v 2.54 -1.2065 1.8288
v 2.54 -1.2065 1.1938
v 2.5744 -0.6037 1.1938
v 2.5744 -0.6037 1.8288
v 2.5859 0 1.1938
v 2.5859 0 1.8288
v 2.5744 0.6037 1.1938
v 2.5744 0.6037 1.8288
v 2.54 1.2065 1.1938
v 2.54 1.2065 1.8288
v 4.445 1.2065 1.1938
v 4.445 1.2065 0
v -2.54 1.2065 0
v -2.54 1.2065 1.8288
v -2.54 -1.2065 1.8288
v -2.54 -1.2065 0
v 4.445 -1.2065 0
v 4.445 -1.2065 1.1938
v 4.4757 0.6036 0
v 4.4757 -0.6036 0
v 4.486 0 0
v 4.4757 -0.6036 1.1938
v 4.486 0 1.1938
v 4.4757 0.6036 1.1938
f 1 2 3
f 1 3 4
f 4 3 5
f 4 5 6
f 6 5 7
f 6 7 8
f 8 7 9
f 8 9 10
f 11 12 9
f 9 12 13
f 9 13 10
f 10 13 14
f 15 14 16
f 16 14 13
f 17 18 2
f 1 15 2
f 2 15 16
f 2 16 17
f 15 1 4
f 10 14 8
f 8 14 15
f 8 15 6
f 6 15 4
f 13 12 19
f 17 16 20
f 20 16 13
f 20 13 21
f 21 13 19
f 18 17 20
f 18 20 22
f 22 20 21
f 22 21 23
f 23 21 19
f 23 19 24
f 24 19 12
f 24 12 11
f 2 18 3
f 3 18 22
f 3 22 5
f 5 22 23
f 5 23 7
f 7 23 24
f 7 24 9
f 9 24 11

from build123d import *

# Parameters (mm, degrees)
BOSS_EXTRUDE1_DEPTH = 1.8288
BOSS_EXTRUDE2_DEPTH = 1.1938


with BuildPart() as part:
    # Sketch2 → Boss-Extrude1 (new body)
    with BuildSketch(Plane.XY):
        with BuildLine():
            Line((-2.54, -1.2065), (2.54, -1.2065))
            ThreePointArc((2.54, -1.2065), (2.585913395, 0), (2.54, 1.2065))
            Line((2.54, 1.2065), (-2.54, 1.2065))
            Line((-2.54, 1.2065), (-2.54, -1.2065))
        make_face()
    extrude(amount=BOSS_EXTRUDE1_DEPTH)

    # Sketch3 → Boss-Extrude2 (add)
    with BuildSketch(Plane.XY):
        with BuildLine():
            Line((2.54, 1.2065), (4.445, 1.2065))
            ThreePointArc((4.445, 1.2065), (4.485982052, 0), (4.445, -1.2065))
            Line((4.445, -1.2065), (2.54, -1.2065))
            Line((2.54, -1.2065), (2.54, 1.2065))
        make_face()
    extrude(amount=BOSS_EXTRUDE2_DEPTH)


solid = part.part
